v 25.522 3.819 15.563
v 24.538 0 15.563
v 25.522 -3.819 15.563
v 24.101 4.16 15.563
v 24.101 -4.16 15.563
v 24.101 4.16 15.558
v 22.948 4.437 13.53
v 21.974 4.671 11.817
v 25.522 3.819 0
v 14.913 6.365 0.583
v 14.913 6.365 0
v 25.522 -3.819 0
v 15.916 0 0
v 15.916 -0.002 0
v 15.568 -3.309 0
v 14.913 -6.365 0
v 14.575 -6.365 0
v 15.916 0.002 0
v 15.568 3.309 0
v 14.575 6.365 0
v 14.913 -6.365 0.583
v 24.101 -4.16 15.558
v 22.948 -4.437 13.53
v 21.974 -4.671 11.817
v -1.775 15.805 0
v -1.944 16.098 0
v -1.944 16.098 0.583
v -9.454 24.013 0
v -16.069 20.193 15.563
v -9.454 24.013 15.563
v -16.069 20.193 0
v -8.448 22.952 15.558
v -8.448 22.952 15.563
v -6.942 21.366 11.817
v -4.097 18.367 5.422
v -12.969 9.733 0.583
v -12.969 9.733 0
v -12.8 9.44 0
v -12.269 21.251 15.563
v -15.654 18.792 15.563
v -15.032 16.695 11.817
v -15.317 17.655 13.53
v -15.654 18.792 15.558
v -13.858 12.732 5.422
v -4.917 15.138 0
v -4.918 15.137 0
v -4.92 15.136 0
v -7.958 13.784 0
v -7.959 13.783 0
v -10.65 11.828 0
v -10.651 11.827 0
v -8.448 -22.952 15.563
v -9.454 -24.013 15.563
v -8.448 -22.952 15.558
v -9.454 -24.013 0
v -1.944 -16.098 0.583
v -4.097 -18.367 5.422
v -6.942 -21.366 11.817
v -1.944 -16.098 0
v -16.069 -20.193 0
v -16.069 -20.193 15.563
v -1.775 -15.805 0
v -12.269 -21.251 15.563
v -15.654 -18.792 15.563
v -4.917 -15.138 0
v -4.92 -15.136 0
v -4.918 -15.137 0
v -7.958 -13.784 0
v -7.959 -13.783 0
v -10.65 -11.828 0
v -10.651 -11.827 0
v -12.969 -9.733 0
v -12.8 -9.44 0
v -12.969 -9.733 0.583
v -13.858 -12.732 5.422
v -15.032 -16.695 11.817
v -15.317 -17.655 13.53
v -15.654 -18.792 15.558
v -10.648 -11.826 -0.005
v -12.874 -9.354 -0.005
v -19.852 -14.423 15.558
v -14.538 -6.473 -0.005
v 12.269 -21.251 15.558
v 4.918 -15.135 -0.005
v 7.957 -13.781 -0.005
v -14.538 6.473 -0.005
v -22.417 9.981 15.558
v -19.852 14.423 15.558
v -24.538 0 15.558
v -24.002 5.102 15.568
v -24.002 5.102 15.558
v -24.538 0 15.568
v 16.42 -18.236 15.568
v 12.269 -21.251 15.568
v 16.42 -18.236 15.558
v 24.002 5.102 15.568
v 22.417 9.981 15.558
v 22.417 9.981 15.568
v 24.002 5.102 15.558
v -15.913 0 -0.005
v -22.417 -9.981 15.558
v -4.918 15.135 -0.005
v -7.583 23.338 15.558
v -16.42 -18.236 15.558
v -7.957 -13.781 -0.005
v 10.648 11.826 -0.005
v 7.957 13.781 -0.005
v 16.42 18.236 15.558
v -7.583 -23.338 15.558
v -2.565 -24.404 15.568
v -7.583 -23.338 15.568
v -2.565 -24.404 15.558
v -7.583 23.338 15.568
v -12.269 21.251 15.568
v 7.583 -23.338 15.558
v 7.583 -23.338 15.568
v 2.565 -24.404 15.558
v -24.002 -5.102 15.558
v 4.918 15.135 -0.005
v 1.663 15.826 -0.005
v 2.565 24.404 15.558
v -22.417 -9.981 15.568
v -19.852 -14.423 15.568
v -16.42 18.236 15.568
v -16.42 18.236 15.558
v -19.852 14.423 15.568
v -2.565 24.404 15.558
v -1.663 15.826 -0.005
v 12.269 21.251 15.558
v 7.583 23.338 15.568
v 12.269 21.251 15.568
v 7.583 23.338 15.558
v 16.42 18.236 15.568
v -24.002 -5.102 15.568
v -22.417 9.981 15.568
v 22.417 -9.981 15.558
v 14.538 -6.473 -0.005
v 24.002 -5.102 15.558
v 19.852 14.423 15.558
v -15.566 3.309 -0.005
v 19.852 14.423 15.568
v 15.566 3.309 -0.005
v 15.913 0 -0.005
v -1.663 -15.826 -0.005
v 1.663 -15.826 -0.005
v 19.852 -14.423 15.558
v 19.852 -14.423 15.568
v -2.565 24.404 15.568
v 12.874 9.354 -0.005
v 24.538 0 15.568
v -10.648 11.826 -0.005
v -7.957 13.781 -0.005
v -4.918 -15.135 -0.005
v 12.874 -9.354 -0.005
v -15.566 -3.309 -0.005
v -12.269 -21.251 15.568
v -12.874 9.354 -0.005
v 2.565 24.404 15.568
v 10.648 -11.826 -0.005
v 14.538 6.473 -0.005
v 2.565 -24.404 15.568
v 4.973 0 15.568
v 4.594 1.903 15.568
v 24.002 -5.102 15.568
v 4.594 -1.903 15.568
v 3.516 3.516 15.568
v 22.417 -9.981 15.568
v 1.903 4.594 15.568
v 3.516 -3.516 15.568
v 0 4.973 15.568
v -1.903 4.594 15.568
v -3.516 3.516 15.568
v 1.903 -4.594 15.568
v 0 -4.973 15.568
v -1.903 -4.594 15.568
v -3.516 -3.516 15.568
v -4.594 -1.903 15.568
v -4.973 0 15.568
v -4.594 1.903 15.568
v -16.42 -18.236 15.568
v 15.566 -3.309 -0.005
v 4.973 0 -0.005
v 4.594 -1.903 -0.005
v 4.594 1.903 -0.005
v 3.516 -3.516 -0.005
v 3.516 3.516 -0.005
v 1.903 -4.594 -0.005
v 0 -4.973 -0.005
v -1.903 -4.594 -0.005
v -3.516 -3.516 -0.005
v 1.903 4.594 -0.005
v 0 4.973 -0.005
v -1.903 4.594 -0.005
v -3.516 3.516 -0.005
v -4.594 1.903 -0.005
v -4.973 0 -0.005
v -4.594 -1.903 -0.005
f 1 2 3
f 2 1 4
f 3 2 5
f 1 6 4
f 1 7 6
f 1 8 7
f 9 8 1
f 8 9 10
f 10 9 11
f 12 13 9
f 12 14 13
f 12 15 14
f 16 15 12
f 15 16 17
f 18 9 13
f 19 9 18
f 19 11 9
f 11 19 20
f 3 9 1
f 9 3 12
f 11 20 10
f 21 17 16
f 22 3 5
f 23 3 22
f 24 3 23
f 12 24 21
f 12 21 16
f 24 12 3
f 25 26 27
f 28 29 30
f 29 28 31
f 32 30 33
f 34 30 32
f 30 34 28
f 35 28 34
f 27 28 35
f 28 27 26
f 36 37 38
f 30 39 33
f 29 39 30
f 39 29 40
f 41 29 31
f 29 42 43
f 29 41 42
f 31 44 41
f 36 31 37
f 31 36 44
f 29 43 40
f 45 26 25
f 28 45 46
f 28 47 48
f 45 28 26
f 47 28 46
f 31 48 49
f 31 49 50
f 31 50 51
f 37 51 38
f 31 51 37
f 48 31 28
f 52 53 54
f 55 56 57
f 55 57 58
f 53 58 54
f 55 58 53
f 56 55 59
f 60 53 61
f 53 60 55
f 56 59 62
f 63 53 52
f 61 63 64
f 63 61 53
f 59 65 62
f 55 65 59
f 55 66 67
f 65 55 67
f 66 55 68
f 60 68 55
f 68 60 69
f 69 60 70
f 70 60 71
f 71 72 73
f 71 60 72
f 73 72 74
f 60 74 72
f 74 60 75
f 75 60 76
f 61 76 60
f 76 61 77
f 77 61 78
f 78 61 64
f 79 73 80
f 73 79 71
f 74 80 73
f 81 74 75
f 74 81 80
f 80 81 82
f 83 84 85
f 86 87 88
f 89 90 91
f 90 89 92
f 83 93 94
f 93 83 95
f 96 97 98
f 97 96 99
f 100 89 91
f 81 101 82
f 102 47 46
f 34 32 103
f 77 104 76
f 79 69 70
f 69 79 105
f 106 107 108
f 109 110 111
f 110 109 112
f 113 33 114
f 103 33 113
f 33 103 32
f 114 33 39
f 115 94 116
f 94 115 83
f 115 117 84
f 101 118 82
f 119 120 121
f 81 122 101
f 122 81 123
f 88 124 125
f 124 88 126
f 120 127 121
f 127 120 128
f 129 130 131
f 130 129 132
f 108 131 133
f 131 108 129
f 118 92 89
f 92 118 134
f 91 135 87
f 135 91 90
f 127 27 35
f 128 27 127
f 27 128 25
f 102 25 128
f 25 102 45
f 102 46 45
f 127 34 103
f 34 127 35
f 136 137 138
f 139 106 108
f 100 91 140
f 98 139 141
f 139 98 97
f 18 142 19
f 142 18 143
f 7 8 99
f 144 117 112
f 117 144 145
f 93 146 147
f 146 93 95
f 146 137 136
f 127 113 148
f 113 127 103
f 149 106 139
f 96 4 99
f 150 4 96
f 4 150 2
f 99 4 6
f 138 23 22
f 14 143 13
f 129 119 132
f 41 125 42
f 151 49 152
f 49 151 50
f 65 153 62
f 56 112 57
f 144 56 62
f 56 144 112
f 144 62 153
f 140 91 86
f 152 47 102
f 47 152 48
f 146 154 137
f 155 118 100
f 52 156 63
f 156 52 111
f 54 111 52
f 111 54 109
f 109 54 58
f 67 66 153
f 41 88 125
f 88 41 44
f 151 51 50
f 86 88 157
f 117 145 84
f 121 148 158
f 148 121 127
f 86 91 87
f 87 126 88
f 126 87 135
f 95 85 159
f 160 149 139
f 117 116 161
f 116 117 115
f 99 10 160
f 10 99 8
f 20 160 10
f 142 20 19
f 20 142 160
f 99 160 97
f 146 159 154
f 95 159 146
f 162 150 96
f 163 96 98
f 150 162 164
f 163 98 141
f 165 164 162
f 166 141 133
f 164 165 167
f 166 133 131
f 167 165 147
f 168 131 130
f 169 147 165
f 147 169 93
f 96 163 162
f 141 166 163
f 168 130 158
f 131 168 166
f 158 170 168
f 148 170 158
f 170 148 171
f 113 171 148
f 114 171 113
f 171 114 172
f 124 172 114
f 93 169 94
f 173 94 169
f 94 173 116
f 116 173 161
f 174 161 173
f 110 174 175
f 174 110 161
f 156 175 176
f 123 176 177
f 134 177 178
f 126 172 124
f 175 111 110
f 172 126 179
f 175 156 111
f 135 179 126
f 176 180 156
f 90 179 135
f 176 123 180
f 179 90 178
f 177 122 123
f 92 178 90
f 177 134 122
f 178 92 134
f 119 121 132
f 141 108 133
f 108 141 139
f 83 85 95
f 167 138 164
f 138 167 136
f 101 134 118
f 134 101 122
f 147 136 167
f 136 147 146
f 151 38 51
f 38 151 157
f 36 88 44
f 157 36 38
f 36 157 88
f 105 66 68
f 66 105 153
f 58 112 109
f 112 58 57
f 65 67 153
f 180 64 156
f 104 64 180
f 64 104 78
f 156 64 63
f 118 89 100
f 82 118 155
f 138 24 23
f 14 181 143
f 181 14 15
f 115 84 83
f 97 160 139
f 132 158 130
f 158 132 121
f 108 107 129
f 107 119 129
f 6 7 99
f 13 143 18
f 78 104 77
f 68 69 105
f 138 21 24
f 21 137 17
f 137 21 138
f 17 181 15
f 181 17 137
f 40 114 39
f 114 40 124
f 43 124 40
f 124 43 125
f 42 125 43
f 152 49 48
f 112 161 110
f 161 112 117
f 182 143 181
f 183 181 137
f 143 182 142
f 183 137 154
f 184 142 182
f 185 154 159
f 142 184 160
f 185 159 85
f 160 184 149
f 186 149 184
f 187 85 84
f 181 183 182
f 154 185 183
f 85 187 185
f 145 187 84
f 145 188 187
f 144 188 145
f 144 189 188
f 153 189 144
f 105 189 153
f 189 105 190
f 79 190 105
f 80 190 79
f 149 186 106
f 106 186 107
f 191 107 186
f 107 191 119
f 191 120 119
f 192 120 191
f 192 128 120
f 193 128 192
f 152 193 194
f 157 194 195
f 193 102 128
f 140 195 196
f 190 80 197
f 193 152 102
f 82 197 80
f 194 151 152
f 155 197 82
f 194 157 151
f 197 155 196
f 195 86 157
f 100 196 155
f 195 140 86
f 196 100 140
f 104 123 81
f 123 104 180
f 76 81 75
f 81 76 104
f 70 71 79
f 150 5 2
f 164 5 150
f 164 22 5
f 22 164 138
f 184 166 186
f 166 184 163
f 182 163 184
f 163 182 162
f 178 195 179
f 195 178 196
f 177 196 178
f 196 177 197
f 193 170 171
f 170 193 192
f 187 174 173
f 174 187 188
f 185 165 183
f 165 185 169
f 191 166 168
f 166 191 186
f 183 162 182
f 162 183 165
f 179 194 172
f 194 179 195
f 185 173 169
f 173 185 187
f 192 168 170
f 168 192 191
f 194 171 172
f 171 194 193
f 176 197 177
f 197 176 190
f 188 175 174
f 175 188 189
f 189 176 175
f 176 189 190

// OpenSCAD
/* doodle-meta {"version":1,"parameters":{"overall_width":{"label":"Overall Width","description":"Maximum width of the knob including wings","unit":"mm","feature":"body_width"},"overall_depth":{"label":"Overall Depth","description":"Maximum depth of the knob including wings","unit":"mm","feature":"body_depth"},"overall_height":{"label":"Overall Height","description":"Total height of the knob","unit":"mm","feature":"body_height"},"base_diameter":{"label":"Base Diameter","description":"Diameter of the knob base before taper","unit":"mm","feature":"body_taper"},"top_diameter":{"label":"Top Diameter","description":"Diameter of the knob top face","unit":"mm","feature":"body_taper"},"wing_length":{"label":"Wing Length","description":"Length of the grip wings extending from the base","unit":"mm","feature":"grip_wings"},"wing_width":{"label":"Wing Width","description":"Width of the grip wings","unit":"mm","feature":"grip_wings"},"shaft_diameter":{"label":"Shaft Hole Diameter","description":"Diameter of the central mounting hole","unit":"mm","feature":"shaft_hole"}},"features":{"body_width":{"kind":"dimension","axis":"x","label":"Overall Width"},"body_depth":{"kind":"dimension","axis":"y","label":"Overall Depth"},"body_height":{"kind":"dimension","axis":"z","label":"Overall Height"},"body_taper":{"kind":"region","label":"Tapered Body","min":[0,0,0],"max":[{"parameter":"overall_width","scale":0.5,"offset":0},{"parameter":"overall_depth","scale":0.5,"offset":0},{"parameter":"overall_height","scale":1,"offset":0}]},"grip_wings":{"kind":"region","label":"Grip Wings","min":[{"parameter":"overall_width","scale":0.5,"offset":0},{"parameter":"overall_depth","scale":0.5,"offset":0},0],"max":[{"parameter":"overall_width","scale":1,"offset":0},{"parameter":"overall_depth","scale":1,"offset":0},{"parameter":"overall_height","scale":1,"offset":0}]},"shaft_hole":{"kind":"region","label":"Shaft Hole","min":[{"parameter":"shaft_diameter","scale":-0.5,"offset":0},{"parameter":"shaft_diameter","scale":-0.5,"offset":0},0],"max":[{"parameter":"shaft_diameter","scale":0.5,"offset":0},{"parameter":"shaft_diameter","scale":0.5,"offset":0},{"parameter":"overall_height","scale":1,"offset":0}]}}} */

// Parameters
overall_width = 53.04476978569913;
overall_depth = 53.04476978569913;
overall_height = 15.563335455124125;
base_diameter = 31.826861871419478;
top_diameter = 49.07702100572883;
wing_length = 10.608953957139827;
wing_width = 12.73074474856779;
shaft_diameter = 9.945894334818586;

// Derived values
base_radius = base_diameter / 2;
top_radius = top_diameter / 2;
wing_extent = base_radius + wing_length;

// Modules
module knob_body() {
    // Lofted tapered body (wider at top, narrower at base)
    hull() {
        // Bottom circle
        translate([0, 0, 0])
            cylinder(h=0.01, r=base_radius, center=true);
        
        // Top circle
        translate([0, 0, overall_height])
            cylinder(h=0.01, r=top_radius, center=true);
    }
}

module grip_wing() {
    // Single wing extending radially
    // Positioned to start from the base radius and extend outwards
    // Using a tapered shape for better grip appearance
    translate([base_radius - 2, 0, overall_height/2])
        hull() {
            // Inner part (wider)
            translate([0, 0, 0])
                cube([2, wing_width, overall_height], center=true);
            // Outer part (narrower tip)
            translate([wing_length, 0, 0])
                cube([2, wing_width * 0.6, overall_height], center=true);
        }
}

module grip_wings() {
    // Three wings at 120 degree intervals
    for (i = [0:2]) {
        rotate([0, 0, i * 120])
            grip_wing();
    }
}

module shaft_hole() {
    // Central through-hole for shaft
    cylinder(h=overall_height + 2, d=shaft_diameter, center=true);
}

// Main Design
difference() {
    union() {
        knob_body();
        grip_wings();
    }
    // Subtract shaft hole
    translate([0, 0, overall_height/2])
        shaft_hole();
}
